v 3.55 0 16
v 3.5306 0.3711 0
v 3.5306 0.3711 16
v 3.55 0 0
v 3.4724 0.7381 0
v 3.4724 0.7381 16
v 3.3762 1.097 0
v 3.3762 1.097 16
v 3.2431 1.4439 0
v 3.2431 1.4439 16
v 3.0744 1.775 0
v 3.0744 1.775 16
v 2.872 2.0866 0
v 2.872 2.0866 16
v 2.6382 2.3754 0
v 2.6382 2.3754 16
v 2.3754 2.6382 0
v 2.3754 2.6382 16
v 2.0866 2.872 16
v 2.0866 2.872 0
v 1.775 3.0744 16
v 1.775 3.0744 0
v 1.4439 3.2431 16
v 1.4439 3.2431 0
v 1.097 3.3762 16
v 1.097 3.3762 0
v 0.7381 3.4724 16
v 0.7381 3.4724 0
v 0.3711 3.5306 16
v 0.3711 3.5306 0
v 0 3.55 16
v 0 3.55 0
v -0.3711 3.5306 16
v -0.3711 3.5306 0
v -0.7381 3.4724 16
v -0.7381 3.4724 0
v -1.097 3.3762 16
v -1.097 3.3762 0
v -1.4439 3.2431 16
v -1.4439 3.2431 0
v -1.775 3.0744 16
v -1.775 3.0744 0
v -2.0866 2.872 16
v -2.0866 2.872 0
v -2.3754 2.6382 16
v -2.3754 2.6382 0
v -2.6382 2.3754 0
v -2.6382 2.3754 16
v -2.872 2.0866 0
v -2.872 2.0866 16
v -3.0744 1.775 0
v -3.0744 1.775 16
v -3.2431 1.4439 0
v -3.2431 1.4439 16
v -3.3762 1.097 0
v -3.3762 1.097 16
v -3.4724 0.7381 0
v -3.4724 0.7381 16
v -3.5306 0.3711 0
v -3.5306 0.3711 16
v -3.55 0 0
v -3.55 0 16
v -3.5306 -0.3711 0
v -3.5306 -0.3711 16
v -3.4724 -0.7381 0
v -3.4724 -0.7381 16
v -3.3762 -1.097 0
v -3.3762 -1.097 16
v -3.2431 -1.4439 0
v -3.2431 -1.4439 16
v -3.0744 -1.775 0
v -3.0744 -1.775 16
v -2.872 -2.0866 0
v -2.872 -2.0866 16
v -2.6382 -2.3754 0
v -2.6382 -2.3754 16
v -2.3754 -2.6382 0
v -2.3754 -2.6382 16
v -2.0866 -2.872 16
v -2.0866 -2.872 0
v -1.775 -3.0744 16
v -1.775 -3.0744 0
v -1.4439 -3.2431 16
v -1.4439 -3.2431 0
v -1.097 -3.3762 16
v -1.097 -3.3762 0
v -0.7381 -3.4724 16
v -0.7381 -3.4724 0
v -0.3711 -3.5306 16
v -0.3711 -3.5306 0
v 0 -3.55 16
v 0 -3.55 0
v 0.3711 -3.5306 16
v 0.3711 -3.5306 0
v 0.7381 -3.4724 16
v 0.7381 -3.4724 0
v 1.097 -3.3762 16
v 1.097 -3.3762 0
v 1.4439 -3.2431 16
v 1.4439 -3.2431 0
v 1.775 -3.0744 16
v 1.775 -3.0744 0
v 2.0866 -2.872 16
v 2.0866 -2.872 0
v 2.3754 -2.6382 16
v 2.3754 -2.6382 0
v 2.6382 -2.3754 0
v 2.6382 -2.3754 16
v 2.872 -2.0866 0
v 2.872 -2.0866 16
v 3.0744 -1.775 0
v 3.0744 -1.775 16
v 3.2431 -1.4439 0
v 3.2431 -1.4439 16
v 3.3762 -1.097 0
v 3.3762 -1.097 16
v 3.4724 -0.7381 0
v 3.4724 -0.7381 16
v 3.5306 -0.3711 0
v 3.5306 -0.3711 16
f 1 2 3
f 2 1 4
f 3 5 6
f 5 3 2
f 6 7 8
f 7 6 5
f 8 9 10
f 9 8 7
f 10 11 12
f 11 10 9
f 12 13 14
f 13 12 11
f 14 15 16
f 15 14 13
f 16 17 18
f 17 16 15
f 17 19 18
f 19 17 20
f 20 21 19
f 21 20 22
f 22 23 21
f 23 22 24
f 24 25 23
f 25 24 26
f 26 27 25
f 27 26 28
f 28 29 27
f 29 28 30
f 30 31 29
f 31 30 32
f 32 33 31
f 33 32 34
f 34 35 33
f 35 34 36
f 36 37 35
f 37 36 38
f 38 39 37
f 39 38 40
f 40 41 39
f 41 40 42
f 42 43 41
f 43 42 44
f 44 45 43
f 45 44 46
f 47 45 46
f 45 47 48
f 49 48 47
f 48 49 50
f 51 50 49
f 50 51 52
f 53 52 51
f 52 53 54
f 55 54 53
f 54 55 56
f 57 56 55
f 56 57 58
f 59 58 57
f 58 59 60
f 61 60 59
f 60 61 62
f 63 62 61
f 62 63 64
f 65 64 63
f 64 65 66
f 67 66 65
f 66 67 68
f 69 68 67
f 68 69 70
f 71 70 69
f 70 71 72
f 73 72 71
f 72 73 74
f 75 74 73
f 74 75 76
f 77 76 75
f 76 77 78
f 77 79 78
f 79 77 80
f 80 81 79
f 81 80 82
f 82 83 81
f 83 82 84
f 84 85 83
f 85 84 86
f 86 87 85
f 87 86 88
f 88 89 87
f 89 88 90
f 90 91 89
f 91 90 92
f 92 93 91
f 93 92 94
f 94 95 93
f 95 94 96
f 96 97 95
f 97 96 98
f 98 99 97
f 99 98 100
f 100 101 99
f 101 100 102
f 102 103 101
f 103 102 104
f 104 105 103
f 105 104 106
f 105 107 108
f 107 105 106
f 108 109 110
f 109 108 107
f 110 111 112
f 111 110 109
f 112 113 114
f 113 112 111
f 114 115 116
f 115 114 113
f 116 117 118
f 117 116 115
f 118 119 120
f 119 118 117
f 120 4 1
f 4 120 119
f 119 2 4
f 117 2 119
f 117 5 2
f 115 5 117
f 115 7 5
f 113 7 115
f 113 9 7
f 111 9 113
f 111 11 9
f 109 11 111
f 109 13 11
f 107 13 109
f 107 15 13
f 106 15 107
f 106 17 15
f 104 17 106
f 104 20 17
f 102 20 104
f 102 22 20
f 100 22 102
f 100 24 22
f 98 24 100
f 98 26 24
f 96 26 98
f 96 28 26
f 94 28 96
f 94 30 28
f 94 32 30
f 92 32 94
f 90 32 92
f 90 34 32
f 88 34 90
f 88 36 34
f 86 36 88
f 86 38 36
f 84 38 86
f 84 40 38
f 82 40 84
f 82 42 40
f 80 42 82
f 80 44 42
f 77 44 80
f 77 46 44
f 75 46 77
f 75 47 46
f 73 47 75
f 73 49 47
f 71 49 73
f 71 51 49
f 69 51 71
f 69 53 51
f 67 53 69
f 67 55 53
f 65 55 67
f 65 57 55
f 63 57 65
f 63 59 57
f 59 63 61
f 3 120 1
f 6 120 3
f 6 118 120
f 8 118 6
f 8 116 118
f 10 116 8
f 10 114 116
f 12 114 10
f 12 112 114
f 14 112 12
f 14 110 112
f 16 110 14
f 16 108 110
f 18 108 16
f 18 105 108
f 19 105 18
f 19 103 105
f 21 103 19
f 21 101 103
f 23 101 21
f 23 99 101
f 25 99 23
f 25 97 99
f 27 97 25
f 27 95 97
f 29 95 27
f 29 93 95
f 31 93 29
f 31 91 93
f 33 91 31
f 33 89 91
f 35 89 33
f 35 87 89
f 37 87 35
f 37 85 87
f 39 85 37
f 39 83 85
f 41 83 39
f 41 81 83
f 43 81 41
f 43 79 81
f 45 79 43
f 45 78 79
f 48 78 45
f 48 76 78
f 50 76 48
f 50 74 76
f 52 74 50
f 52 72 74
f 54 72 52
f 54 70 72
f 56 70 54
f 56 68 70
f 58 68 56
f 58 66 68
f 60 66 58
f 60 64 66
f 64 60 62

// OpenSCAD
// The arms are designed to be spaced 18mm apart, using 25mm wide aluminium flat bar.
// This fits a 6mm belt with 6mm space between them.
// For that, print 4 blocks with the following dimensions:
// belt_above_surface = 11.8;
// side_support_offset = 12.5;
//
// For a 15mm lift from the sled surface (2.5mm thick alu bar plus 12.5mm clearance for the bolts):
//
// print 2 of these:
// belt_above_surface = 15;
// side_support_offset = 20;
//
// Also print 2 of these:
// Uncomment the mirroring
// belt_above_surface = 27; // 15mm plus belt height plus spacing inbetween
// side_support_offset = 30;
//
//
ooze = 0.15; // My machine has a wall ooze (extra width) of about 0.15mm.
nozzle = 0.4; // Extrusion nozzle width
m6 = 3 + ooze; // radius of holes.

$fn=60;

difference() {
    cylinder(r=m6+nozzle, h=16);
}
